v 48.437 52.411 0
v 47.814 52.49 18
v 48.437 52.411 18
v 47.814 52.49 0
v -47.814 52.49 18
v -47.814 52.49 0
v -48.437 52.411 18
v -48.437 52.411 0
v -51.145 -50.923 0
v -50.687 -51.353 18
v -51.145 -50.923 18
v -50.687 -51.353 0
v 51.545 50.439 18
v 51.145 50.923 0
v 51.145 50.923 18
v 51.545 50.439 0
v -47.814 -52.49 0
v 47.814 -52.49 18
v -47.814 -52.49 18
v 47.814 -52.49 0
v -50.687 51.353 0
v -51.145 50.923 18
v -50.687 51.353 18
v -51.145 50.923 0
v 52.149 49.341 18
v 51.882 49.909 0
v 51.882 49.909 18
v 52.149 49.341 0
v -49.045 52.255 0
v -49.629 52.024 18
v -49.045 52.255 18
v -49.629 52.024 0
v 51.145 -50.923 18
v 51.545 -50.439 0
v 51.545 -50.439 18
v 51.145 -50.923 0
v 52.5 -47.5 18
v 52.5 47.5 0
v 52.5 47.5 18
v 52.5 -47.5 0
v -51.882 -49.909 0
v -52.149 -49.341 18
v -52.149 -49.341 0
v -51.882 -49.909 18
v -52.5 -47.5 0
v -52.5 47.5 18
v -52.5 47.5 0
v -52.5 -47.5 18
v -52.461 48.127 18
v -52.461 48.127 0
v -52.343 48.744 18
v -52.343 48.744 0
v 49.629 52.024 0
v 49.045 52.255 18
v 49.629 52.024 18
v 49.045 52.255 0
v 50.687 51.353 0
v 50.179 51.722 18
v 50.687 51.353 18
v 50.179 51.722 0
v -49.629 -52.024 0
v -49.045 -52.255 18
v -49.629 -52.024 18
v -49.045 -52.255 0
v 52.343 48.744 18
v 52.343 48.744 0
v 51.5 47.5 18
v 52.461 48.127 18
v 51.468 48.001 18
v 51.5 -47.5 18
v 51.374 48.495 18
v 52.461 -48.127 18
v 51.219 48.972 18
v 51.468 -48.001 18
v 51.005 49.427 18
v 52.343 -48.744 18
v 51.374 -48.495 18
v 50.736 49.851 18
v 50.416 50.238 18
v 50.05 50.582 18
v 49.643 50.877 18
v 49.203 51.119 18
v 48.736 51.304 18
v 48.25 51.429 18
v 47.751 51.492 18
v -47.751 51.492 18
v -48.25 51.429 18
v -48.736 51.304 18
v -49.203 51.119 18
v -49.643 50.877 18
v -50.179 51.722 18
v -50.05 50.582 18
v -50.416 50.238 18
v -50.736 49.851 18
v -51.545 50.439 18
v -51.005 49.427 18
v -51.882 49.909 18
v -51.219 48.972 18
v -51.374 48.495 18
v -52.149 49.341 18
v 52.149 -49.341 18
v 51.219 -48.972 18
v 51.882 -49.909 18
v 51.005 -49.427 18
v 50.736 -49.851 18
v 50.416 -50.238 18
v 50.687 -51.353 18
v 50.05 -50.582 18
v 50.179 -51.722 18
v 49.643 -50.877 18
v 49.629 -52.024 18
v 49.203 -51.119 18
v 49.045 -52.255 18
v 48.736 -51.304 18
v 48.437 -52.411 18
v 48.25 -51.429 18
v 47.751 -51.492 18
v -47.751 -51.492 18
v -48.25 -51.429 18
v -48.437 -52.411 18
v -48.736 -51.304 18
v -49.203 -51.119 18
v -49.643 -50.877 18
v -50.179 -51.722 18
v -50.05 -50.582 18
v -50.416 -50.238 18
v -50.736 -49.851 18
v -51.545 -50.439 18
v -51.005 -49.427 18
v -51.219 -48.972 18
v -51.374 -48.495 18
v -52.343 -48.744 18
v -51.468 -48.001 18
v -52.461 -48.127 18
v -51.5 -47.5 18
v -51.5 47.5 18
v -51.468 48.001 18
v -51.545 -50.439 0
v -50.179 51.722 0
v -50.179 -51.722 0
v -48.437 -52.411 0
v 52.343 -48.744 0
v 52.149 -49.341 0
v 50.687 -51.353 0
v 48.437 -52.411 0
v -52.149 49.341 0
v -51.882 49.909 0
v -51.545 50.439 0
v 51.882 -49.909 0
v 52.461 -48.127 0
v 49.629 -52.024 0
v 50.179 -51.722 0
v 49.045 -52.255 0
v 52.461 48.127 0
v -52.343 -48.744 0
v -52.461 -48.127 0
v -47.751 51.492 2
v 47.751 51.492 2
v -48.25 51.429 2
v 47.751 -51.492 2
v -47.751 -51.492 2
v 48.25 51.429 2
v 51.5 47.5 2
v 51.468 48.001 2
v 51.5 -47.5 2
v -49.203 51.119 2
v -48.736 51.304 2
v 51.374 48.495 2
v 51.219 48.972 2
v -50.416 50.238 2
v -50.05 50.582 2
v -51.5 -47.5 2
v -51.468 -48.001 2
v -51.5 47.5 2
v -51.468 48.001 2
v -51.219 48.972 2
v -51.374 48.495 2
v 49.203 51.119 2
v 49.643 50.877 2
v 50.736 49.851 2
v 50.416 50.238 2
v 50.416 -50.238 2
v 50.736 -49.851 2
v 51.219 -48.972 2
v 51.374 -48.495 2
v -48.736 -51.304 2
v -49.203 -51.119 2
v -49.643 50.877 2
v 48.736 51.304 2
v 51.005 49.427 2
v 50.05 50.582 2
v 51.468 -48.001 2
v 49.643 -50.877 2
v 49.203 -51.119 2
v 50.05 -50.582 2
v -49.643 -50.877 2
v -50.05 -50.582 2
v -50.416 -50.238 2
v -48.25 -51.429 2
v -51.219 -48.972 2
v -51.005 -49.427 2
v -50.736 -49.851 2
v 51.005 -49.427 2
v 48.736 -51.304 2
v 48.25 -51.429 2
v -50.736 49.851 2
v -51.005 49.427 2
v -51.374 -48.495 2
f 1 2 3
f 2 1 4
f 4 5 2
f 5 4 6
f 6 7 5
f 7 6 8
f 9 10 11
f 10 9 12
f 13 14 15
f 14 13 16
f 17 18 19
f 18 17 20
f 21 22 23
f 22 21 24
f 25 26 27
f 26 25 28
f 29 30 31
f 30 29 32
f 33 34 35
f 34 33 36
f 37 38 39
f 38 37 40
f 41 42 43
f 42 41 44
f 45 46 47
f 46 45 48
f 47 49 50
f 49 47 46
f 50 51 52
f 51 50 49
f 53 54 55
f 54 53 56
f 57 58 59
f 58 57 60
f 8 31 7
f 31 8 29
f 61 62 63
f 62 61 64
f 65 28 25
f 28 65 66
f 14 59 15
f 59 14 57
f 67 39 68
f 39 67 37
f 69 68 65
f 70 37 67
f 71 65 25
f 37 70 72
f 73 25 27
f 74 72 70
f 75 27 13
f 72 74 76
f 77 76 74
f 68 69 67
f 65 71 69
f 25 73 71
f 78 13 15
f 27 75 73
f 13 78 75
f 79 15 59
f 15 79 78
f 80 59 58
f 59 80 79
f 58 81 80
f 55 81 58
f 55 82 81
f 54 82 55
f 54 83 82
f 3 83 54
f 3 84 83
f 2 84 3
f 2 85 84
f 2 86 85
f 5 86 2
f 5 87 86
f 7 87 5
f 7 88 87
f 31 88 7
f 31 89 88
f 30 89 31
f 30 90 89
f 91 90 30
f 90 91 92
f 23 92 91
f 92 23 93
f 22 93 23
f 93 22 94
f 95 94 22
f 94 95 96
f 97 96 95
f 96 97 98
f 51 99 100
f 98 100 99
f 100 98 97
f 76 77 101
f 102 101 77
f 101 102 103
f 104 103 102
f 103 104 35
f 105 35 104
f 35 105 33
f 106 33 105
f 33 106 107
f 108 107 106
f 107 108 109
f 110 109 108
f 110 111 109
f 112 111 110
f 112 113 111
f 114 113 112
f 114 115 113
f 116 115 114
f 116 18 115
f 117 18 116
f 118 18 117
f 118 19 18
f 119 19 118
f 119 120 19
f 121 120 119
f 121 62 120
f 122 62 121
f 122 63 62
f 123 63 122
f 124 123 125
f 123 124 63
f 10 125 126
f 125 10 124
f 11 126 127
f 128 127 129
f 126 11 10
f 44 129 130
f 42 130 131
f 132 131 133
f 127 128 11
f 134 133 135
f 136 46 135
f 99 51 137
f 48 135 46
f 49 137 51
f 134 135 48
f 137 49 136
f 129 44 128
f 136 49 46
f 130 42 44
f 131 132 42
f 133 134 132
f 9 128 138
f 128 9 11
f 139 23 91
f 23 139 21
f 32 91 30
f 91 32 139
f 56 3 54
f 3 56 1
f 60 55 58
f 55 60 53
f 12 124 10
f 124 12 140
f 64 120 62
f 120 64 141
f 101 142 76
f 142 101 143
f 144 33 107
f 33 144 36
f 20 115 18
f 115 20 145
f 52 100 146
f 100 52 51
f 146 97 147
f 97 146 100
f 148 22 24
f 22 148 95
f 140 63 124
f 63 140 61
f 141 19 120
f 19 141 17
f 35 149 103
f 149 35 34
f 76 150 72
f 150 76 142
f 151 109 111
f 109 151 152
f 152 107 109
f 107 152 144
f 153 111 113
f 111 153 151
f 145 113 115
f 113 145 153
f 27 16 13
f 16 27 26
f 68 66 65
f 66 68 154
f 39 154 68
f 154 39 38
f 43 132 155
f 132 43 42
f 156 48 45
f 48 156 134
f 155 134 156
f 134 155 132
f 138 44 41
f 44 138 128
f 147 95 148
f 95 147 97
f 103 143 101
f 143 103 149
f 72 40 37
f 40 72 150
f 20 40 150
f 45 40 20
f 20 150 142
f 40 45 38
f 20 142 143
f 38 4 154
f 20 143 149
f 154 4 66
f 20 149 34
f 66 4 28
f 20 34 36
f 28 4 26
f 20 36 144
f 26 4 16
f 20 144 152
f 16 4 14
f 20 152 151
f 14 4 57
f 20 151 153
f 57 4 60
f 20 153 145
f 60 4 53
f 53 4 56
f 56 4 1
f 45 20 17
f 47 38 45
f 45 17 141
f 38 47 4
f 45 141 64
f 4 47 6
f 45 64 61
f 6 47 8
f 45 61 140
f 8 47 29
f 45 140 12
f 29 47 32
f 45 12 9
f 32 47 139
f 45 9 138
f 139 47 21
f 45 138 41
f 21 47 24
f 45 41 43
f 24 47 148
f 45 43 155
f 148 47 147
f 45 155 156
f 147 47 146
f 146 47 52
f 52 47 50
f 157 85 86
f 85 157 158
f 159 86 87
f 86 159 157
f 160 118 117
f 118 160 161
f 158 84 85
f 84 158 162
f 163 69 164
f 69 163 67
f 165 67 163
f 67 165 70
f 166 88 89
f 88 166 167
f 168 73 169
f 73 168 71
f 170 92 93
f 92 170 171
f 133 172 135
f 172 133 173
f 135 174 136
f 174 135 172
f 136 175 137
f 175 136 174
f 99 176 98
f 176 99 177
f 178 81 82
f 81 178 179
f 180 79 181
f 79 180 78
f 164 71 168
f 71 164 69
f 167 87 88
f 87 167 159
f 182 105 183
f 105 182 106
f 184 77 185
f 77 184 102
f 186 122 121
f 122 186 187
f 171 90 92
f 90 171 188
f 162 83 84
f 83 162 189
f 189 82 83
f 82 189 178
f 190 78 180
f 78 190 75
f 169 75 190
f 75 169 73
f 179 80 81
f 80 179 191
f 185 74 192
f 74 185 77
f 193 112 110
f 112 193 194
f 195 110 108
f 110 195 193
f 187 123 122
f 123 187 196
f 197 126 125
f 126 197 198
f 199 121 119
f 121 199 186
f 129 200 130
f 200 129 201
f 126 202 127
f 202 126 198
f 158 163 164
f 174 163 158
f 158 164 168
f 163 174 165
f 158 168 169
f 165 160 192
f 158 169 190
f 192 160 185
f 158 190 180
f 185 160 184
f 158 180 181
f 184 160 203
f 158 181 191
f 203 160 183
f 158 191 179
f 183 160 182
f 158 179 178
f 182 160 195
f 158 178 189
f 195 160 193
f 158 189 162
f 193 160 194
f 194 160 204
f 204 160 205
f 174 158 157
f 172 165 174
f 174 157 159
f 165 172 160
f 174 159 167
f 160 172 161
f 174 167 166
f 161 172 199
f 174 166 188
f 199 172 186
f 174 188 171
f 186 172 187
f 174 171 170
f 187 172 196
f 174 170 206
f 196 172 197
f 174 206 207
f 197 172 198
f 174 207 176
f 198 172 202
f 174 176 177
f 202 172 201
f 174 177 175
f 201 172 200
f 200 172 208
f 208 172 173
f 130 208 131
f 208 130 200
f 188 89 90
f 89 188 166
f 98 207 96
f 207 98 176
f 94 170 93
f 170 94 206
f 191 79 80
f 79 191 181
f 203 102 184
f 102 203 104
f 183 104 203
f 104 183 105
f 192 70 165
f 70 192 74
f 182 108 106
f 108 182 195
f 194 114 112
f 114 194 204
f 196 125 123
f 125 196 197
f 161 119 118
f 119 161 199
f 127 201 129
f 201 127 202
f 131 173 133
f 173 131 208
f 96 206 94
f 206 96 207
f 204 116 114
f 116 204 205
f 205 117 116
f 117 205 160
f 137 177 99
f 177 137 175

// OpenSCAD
$fn = 50;


difference() {
	union() {
		hull() {
			translate(v = [-47.5000000000, 47.5000000000, 0]) {
				cylinder(h = 18, r = 5);
			}
			translate(v = [47.5000000000, 47.5000000000, 0]) {
				cylinder(h = 18, r = 5);
			}
			translate(v = [-47.5000000000, -47.5000000000, 0]) {
				cylinder(h = 18, r = 5);
			}
			translate(v = [47.5000000000, -47.5000000000, 0]) {
				cylinder(h = 18, r = 5);
			}
		}
	}
	union() {
		translate(v = [0, 0, 2]) {
			hull() {
				translate(v = [-47.5000000000, 47.5000000000, 0]) {
					cylinder(h = 16, r = 4);
				}
				translate(v = [47.5000000000, 47.5000000000, 0]) {
					cylinder(h = 16, r = 4);
				}
				translate(v = [-47.5000000000, -47.5000000000, 0]) {
					cylinder(h = 16, r = 4);
				}
				translate(v = [47.5000000000, -47.5000000000, 0]) {
					cylinder(h = 16, r = 4);
				}
			}
		}
	}
}
